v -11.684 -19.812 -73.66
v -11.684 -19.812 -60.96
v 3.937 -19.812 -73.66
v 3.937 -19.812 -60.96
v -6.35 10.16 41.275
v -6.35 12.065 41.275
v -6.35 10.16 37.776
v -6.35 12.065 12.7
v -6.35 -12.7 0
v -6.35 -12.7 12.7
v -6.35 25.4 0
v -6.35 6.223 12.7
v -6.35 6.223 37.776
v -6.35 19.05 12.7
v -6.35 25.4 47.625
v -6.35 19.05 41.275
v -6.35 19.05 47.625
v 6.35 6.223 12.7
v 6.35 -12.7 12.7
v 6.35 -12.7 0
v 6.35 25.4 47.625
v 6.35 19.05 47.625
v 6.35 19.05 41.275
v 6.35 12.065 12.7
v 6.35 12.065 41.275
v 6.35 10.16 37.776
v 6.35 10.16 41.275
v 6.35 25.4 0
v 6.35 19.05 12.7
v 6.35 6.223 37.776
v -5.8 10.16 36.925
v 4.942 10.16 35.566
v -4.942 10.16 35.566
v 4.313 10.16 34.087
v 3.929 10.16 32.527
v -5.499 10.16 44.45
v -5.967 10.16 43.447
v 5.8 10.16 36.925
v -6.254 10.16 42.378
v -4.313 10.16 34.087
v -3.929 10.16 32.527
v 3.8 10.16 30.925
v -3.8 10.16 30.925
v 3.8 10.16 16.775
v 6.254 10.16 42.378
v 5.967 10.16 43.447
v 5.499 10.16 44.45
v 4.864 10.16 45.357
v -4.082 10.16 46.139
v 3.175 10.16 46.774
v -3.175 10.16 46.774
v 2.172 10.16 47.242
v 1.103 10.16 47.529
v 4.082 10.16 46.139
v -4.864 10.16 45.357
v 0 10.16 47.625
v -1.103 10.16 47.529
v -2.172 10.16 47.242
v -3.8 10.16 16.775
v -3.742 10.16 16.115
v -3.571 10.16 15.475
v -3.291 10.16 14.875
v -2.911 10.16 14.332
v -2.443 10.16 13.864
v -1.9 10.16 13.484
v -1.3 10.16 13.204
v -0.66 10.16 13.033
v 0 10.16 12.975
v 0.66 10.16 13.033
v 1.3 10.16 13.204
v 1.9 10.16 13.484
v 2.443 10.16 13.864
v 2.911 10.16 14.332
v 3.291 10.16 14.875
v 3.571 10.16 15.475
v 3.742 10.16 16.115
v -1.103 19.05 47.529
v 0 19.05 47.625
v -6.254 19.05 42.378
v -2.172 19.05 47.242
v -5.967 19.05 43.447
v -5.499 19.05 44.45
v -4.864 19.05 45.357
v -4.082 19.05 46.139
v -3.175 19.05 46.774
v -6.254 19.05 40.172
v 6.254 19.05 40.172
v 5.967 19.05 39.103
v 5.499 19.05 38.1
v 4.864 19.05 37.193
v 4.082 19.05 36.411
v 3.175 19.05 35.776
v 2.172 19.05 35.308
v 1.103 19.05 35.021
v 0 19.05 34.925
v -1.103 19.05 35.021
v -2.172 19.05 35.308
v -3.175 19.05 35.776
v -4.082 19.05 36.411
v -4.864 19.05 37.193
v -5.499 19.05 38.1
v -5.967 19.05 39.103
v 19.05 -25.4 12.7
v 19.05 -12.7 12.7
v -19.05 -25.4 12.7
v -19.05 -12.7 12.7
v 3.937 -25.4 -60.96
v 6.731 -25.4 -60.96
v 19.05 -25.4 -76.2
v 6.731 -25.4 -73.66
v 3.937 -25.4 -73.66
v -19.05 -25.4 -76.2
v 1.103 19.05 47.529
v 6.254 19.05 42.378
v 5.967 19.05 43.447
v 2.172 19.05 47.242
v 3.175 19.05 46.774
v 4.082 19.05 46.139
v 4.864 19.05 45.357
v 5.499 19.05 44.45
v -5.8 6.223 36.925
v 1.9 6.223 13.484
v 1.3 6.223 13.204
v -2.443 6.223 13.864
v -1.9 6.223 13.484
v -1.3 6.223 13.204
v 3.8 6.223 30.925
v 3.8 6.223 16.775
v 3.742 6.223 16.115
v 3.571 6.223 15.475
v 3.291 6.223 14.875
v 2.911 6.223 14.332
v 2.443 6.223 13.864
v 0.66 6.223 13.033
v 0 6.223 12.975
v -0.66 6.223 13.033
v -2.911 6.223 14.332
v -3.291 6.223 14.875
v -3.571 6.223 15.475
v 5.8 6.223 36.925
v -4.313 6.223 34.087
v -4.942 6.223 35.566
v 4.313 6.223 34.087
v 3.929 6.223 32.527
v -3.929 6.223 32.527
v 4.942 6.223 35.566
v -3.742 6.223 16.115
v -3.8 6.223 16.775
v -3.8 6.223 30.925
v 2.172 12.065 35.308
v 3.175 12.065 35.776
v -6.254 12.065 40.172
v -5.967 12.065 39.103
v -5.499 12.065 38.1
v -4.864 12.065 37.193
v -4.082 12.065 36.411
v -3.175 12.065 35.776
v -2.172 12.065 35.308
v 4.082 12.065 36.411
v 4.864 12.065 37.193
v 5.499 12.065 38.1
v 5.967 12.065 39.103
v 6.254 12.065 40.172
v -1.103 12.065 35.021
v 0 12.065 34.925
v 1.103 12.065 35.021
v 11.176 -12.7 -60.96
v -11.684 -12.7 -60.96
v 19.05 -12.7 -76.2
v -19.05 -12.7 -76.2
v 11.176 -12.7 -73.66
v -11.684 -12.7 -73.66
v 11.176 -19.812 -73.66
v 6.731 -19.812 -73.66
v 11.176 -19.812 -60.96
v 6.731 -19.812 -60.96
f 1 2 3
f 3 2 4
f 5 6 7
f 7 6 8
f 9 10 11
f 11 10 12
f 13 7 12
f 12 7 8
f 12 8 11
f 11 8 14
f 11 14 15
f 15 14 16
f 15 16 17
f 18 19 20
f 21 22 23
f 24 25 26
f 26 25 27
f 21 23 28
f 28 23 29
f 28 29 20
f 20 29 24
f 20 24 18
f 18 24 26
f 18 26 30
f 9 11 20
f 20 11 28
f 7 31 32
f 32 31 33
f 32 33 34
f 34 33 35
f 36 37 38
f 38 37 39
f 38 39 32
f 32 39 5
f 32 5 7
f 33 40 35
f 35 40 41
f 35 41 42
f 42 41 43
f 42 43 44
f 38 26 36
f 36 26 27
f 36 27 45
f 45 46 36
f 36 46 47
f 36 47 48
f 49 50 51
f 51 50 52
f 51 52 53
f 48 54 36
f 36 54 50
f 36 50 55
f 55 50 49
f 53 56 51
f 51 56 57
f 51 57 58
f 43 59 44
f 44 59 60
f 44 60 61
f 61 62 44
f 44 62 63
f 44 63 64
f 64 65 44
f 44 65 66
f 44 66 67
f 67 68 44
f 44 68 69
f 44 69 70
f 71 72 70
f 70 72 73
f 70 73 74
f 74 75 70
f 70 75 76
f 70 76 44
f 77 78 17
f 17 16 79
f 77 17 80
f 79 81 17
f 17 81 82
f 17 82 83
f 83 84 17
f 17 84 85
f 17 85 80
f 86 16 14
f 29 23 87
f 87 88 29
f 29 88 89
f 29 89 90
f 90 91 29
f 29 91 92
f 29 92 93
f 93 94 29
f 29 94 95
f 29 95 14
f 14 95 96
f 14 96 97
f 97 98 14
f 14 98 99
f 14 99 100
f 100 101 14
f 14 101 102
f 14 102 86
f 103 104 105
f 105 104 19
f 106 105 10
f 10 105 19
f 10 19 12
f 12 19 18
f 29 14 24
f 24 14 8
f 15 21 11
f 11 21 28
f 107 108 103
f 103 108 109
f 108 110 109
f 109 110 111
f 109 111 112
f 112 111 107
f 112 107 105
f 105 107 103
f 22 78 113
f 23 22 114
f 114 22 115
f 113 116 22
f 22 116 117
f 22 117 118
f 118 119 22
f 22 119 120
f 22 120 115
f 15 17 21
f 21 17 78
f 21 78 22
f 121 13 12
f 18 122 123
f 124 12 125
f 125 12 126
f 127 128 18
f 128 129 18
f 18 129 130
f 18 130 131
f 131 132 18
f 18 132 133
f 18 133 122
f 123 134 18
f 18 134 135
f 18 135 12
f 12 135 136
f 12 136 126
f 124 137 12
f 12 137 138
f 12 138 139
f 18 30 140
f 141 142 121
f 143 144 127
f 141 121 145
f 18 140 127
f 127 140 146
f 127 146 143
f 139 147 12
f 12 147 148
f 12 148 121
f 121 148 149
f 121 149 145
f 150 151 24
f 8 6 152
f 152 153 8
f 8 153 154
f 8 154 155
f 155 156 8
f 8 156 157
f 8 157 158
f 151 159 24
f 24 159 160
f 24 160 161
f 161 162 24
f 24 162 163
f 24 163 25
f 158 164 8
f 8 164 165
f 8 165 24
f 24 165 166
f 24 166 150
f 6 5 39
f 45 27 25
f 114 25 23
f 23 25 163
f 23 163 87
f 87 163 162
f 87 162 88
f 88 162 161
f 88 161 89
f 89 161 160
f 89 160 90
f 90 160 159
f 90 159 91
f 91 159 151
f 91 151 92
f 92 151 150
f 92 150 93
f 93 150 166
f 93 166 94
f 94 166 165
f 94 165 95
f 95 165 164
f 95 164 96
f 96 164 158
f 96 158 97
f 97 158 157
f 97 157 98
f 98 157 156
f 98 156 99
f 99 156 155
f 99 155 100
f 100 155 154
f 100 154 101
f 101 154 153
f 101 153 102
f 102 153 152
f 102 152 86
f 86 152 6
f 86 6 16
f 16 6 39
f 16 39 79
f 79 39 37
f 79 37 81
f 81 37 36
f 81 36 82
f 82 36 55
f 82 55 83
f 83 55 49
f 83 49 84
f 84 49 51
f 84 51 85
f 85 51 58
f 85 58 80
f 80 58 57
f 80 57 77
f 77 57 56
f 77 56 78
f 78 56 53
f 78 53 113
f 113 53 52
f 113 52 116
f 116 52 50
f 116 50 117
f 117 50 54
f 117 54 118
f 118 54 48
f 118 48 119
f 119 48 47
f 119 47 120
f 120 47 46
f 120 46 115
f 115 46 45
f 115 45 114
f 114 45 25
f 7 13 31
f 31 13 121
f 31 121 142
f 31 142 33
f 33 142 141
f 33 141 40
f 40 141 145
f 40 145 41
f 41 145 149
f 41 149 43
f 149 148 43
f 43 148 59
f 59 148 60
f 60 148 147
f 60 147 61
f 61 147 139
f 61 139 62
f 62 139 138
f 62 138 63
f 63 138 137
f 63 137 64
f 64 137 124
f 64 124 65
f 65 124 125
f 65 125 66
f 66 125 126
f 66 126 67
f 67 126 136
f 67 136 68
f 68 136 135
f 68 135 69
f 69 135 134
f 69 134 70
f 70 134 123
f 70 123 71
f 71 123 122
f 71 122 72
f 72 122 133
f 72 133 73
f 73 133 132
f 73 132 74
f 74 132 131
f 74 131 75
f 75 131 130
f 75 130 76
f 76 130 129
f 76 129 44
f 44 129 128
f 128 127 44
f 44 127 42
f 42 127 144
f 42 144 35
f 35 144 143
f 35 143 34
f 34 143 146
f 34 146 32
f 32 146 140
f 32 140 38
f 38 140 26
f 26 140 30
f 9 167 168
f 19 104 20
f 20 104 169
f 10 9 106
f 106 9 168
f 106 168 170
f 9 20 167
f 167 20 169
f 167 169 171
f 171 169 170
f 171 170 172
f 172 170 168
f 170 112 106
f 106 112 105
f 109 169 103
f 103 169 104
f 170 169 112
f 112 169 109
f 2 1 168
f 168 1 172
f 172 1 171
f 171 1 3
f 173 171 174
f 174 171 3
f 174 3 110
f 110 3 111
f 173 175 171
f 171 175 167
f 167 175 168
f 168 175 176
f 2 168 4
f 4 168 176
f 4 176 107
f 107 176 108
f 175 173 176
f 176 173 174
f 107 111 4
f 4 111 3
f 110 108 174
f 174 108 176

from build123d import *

# Parameters (mm, degrees)
SKETCH1_W           = 12.7
SKETCH1_H           = 50.8
BOSS_EXTRUDE1_DEPTH = 12.7
SKETCH2_W           = 12.7
SKETCH2_H           = 6.35
SKETCH2_H_2         = 5.842
BOSS_EXTRUDE2_DEPTH = 34.925
SKETCH4_R           = 6.35
BOSS_EXTRUDE3_DEPTH = 6.985
CUT_EXTRUDE1_START  = -3.937
CUT_EXTRUDE1_DEPTH  = 3.937
CUT_EXTRUDE2_DEPTH  = 12.827
BOSS_EXTRUDE4_START = -12.7
SKETCH6_W           = 38.1
SKETCH6_H           = 12.7
BOSS_EXTRUDE4_DEPTH = 88.9
SKETCH7_W           = 22.86
SKETCH7_H           = 12.7
CUT_EXTRUDE3_DEPTH  = 7.112
SKETCH9_W           = 2.794
SKETCH9_H           = 12.7
CUT_EXTRUDE4_DEPTH  = 91.628182394


with BuildPart() as part:
    # Sketch1 → Boss-Extrude1 (new body)
    with BuildSketch(Plane.XY):
        Rectangle(SKETCH1_W, SKETCH1_H)
    extrude(amount=BOSS_EXTRUDE1_DEPTH)

    # Sketch2 → Boss-Extrude2 (add)
    with BuildSketch(Plane.XY.offset(12.7)):
        with Locations((0, 22.225)):
            Rectangle(SKETCH2_W, SKETCH2_H)
        with Locations((0, 9.144)):
            Rectangle(SKETCH2_W, SKETCH2_H_2)
    extrude(amount=BOSS_EXTRUDE2_DEPTH)

    # Sketch4 → Boss-Extrude3 (add)
    with BuildSketch(Plane(origin=(0, 12.065, 0), x_dir=(1, 0, 0), z_dir=(0, 1, 0))):
        with Locations((0, -41.275)):
            Circle(SKETCH4_R)
    extrude(amount=BOSS_EXTRUDE3_DEPTH)

    # Sketch5 → Cut-Extrude1 (cut)
    with BuildSketch(Plane.XZ.offset(-6.223).offset(CUT_EXTRUDE1_START)):
        with BuildLine():
            Line((3.8, 16.775), (3.8, 30.925))
            ThreePointArc((3.8, 30.925), (4.31316702, 34.08727766), (5.8, 36.925))
            ThreePointArc((5.8, 36.925), (6.08989801, 37.34109072), (6.35, 37.776428863))
            Line((6.35, 37.776428863), (6.35, 41.275))
            ThreePointArc((6.35, 41.275), (4.490128061, 45.765128061), (0, 47.625))
            ThreePointArc((0, 47.625), (-4.490128061, 45.765128061), (-6.35, 41.275))
            Line((-6.35, 41.275), (-6.35, 37.776428863))
            ThreePointArc((-6.35, 37.776428863), (-6.08989801, 37.34109072), (-5.8, 36.925))
            ThreePointArc((-5.8, 36.925), (-4.313167019, 34.08727766), (-3.8, 30.925))
            Line((-3.8, 30.925), (-3.8, 16.775))
            ThreePointArc((-3.8, 16.775), (0, 12.975), (3.8, 16.775))
        make_face()
        with BuildLine():
            ThreePointArc((-6.35, 41.275), (-4.490128061, 45.765128061), (0, 47.625))
            Line((0, 47.625), (-3.498571137, 47.625))
            Line((-3.498571137, 47.625), (-6.35, 47.625))
            Line((-6.35, 47.625), (-6.35, 44.773571137))
            Line((-6.35, 44.773571137), (-6.35, 41.275))
        make_face()
        with BuildLine():
            ThreePointArc((0, 47.625), (4.490128061, 45.765128061), (6.35, 41.275))
            Line((6.35, 41.275), (6.35, 44.773571137))
            Line((6.35, 44.773571137), (6.35, 47.625))
            Line((6.35, 47.625), (3.498571137, 47.625))
            Line((3.498571137, 47.625), (0, 47.625))
        make_face()
    extrude(amount=CUT_EXTRUDE1_DEPTH, mode=Mode.SUBTRACT)

    # Sketch5<3> → Cut-Extrude2 (cut)
    with BuildSketch(Plane.XZ.offset(-6.223)):
        with BuildLine():
            ThreePointArc((-6.35, 41.275), (-4.490128061, 45.765128061), (0, 47.625))
            Line((0, 47.625), (-3.498571137, 47.625))
            Line((-3.498571137, 47.625), (-6.35, 47.625))
            Line((-6.35, 47.625), (-6.35, 44.773571137))
            Line((-6.35, 44.773571137), (-6.35, 41.275))
        make_face()
        with BuildLine():
            ThreePointArc((0, 47.625), (4.490128061, 45.765128061), (6.35, 41.275))
            Line((6.35, 41.275), (6.35, 44.773571137))
            Line((6.35, 44.773571137), (6.35, 47.625))
            Line((6.35, 47.625), (3.498571137, 47.625))
            Line((3.498571137, 47.625), (0, 47.625))
        make_face()
    extrude(amount=-CUT_EXTRUDE2_DEPTH, mode=Mode.SUBTRACT)

    # Sketch6 → Boss-Extrude4 (add)
    with BuildSketch(Plane(origin=(0, 0, 0), x_dir=(-1, 0, 0), z_dir=(0, 0, -1)).offset(BOSS_EXTRUDE4_START)):
        with Locations((0, -19.05)):
            Rectangle(SKETCH6_W, SKETCH6_H)
    extrude(amount=BOSS_EXTRUDE4_DEPTH)

    # Sketch7 → Cut-Extrude3 (cut)
    with BuildSketch(Plane(origin=(0, -12.7, 0), x_dir=(1, 0, 0), z_dir=(0, 1, 0))):
        with Locations((-0.254, 67.31)):
            Rectangle(SKETCH7_W, SKETCH7_H)
    extrude(amount=-CUT_EXTRUDE3_DEPTH, mode=Mode.SUBTRACT)

    # Sketch9 → Cut-Extrude4 (cut, through all)
    with BuildSketch(Plane(origin=(0, -19.812, 0), x_dir=(1, 0, 0), z_dir=(0, 1, 0))):
        with Locations((5.334, 67.31)):
            Rectangle(SKETCH9_W, SKETCH9_H)
    extrude(amount=-CUT_EXTRUDE4_DEPTH, mode=Mode.SUBTRACT)


solid = part.part
